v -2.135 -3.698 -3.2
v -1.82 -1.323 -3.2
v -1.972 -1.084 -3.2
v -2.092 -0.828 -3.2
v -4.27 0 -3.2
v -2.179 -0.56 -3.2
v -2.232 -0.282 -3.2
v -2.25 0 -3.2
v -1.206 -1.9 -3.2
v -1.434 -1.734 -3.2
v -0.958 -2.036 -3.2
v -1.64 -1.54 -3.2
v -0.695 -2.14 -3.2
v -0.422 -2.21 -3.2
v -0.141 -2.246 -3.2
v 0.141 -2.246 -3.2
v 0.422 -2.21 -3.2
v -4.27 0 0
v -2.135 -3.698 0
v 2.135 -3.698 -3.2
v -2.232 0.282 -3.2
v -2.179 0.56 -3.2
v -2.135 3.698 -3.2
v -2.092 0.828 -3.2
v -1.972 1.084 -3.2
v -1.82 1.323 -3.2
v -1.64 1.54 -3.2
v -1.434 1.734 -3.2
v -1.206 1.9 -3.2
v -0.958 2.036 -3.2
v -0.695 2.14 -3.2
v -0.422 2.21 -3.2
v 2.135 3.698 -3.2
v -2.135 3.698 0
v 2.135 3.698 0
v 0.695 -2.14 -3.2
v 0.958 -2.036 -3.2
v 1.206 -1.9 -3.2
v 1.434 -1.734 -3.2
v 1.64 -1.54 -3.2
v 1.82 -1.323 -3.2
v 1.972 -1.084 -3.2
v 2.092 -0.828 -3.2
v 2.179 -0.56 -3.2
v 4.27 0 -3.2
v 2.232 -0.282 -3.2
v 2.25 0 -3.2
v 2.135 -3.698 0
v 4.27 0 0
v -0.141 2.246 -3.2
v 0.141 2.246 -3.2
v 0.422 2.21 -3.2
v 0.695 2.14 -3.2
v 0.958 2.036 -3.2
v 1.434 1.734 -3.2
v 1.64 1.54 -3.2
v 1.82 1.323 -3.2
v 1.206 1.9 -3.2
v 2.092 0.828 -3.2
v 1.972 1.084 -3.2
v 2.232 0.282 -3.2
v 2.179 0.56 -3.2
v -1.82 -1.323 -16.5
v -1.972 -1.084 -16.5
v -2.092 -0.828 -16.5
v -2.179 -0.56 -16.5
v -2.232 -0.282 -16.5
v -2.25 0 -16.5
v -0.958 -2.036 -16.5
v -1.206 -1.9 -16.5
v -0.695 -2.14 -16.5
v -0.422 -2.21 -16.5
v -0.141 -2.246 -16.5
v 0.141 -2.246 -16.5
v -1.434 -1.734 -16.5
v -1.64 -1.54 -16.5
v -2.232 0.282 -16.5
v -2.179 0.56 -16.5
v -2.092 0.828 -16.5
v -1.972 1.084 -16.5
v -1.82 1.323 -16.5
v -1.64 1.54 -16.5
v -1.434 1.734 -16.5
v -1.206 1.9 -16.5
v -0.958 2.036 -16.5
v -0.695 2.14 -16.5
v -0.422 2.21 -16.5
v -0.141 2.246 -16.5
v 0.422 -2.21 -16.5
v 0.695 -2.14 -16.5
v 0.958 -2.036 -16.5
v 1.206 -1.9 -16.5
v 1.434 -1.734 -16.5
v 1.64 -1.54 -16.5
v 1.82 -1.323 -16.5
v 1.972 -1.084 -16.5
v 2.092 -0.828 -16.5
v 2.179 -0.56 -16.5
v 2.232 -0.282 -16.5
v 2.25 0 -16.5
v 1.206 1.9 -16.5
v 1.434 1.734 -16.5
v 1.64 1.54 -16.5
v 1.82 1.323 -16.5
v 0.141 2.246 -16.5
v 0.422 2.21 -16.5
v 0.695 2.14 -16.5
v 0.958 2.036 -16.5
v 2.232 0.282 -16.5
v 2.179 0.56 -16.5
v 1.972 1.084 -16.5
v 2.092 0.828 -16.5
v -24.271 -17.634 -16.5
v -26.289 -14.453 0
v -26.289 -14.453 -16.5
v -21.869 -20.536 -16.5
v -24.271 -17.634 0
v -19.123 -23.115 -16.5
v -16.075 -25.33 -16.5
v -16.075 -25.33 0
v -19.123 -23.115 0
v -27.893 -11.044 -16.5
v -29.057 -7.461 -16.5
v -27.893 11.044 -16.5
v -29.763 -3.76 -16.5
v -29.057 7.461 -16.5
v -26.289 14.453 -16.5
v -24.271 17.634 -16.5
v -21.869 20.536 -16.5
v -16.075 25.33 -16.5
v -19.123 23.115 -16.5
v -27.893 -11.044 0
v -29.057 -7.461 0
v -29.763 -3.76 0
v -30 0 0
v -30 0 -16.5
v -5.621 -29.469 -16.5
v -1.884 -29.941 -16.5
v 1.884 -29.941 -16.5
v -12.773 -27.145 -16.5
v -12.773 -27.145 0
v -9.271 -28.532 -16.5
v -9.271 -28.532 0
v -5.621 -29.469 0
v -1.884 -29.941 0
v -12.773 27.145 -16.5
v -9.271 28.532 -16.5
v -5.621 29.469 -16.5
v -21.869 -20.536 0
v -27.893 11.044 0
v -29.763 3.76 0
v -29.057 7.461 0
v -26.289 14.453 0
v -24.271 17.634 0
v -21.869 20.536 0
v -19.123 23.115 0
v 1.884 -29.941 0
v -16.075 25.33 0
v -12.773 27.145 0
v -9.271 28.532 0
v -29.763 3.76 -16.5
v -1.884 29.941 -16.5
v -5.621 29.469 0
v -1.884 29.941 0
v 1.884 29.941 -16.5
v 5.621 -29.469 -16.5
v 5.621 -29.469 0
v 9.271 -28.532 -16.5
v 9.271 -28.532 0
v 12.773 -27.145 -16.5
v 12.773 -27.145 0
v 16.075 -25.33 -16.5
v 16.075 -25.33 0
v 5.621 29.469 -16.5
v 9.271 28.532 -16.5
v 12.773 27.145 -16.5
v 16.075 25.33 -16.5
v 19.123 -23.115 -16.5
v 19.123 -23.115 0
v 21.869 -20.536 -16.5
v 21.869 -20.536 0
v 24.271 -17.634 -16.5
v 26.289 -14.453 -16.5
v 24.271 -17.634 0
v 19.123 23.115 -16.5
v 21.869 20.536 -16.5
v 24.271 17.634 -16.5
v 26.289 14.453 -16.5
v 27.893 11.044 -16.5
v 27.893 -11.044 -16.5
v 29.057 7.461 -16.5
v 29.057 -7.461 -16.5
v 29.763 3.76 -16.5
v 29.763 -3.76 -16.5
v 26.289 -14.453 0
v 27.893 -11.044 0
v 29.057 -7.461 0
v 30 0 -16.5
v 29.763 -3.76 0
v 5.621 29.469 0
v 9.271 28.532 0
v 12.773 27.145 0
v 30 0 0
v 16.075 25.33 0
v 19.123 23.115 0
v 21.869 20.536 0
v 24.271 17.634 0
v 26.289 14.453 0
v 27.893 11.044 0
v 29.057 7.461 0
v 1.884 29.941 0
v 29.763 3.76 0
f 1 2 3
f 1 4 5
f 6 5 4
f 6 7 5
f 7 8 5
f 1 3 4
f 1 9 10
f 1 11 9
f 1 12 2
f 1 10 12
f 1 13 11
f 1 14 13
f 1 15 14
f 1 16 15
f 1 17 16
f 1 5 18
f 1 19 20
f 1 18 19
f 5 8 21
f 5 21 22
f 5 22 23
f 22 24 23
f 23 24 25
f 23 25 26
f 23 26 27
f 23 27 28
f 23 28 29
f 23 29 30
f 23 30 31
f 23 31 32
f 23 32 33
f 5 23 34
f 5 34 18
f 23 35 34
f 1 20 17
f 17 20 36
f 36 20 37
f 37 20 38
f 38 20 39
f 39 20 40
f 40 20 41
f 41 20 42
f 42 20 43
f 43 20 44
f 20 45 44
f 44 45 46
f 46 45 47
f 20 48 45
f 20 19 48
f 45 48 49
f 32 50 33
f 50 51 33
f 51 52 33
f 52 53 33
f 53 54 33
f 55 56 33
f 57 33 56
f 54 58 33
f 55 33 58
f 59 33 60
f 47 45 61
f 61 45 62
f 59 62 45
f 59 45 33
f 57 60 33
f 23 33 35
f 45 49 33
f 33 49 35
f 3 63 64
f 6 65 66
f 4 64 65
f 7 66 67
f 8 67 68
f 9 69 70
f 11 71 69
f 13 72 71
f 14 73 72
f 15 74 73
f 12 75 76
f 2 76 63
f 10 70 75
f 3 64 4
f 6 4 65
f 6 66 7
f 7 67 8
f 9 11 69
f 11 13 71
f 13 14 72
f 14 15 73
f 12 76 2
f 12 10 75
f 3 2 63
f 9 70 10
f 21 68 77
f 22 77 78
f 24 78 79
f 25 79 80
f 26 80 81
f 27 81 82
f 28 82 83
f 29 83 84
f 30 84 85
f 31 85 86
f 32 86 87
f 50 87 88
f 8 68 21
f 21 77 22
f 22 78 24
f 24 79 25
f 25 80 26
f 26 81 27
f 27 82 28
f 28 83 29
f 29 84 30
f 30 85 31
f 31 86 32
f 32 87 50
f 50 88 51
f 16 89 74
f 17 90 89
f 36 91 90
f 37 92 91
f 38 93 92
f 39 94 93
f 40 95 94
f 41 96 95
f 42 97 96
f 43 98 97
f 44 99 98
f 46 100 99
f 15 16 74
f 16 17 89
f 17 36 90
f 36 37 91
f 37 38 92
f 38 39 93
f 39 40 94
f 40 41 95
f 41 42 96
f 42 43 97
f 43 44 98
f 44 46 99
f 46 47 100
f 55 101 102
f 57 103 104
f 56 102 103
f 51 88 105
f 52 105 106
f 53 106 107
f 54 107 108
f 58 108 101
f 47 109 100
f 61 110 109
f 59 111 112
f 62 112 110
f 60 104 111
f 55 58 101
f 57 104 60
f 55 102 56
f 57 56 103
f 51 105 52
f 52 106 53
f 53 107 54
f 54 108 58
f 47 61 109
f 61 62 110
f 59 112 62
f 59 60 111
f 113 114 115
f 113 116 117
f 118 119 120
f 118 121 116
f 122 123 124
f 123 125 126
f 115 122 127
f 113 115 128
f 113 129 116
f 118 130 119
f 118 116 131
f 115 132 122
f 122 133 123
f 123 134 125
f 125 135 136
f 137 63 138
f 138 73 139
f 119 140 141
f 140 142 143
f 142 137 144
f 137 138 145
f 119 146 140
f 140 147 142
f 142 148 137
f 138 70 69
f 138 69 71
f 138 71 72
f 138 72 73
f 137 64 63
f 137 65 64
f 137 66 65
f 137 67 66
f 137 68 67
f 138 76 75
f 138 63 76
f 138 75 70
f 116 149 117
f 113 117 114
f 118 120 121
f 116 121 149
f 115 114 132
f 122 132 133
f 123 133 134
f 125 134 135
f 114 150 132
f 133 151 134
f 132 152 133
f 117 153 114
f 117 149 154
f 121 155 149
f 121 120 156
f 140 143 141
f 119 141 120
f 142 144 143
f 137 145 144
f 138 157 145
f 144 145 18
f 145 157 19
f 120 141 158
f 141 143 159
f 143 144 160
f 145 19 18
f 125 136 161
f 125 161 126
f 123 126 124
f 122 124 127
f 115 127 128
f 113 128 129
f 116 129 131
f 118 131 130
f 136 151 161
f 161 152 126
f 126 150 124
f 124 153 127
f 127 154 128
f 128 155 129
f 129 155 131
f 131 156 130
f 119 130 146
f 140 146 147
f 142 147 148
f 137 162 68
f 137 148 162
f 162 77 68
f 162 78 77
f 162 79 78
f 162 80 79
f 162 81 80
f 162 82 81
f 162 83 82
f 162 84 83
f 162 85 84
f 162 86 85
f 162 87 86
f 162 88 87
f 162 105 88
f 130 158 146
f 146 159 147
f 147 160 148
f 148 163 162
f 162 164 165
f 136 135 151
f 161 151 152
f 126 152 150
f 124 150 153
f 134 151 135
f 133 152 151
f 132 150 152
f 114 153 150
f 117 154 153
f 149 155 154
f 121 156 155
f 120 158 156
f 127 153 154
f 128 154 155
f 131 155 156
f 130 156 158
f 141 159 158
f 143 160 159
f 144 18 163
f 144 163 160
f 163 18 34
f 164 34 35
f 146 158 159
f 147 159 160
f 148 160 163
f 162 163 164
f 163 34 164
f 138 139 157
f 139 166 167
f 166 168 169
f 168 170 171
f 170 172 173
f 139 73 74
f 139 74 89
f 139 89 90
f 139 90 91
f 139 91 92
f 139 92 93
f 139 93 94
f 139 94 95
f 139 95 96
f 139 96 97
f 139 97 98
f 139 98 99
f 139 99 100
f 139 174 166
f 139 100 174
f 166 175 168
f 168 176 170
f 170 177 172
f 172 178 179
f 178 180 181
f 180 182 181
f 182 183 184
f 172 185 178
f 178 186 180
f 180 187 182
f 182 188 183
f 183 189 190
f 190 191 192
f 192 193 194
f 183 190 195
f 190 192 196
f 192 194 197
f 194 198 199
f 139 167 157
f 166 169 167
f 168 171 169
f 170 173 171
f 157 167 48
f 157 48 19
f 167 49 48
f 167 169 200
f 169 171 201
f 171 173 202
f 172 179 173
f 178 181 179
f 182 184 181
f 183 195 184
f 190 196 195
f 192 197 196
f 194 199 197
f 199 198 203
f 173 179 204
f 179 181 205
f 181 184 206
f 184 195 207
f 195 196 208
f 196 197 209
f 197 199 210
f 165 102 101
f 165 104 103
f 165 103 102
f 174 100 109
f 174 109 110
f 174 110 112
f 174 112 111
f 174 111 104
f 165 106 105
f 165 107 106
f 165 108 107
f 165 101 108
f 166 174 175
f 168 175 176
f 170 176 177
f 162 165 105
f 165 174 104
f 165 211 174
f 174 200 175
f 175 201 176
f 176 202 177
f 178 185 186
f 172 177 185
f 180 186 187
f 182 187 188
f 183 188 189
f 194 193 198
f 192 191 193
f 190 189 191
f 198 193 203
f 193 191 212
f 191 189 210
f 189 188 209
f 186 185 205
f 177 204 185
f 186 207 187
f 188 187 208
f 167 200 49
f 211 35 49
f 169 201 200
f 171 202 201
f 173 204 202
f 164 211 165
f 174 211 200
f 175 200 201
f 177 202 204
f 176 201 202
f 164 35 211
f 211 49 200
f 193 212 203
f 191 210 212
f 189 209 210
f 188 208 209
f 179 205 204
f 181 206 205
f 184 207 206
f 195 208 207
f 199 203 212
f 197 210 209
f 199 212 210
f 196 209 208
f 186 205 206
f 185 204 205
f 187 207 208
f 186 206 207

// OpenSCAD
$fn = 50;

difference() {
	union() {
		translate(v = [0, 0, -16.5]) {
			cylinder(h = 16.5, r = 30.0);
		}
	}
	union() {
		translate(v = [0, 0, 0]) {
			rotate(a = [0, 0, 0]) {
				difference() {
					union() {
						translate(v = [0, 0, -3.2]) {
							linear_extrude(height = 3.2) {
								polygon(points = [[4.2698, 0.0], [2.1349000000000005, 3.697755269078796], [-2.134899999999999, 3.6977552690787965], [-4.2698, 5.228996902999369e-16], [-2.134900000000002, -3.6977552690787956], [2.1348999999999974, -3.697755269078798]]);
							}
						}
					}
					union();
				}
			}
		}
		#translate(v = [0, 0, -100.0]) {
			cylinder(h = 200, r = 2.25);
		}
	}
}
